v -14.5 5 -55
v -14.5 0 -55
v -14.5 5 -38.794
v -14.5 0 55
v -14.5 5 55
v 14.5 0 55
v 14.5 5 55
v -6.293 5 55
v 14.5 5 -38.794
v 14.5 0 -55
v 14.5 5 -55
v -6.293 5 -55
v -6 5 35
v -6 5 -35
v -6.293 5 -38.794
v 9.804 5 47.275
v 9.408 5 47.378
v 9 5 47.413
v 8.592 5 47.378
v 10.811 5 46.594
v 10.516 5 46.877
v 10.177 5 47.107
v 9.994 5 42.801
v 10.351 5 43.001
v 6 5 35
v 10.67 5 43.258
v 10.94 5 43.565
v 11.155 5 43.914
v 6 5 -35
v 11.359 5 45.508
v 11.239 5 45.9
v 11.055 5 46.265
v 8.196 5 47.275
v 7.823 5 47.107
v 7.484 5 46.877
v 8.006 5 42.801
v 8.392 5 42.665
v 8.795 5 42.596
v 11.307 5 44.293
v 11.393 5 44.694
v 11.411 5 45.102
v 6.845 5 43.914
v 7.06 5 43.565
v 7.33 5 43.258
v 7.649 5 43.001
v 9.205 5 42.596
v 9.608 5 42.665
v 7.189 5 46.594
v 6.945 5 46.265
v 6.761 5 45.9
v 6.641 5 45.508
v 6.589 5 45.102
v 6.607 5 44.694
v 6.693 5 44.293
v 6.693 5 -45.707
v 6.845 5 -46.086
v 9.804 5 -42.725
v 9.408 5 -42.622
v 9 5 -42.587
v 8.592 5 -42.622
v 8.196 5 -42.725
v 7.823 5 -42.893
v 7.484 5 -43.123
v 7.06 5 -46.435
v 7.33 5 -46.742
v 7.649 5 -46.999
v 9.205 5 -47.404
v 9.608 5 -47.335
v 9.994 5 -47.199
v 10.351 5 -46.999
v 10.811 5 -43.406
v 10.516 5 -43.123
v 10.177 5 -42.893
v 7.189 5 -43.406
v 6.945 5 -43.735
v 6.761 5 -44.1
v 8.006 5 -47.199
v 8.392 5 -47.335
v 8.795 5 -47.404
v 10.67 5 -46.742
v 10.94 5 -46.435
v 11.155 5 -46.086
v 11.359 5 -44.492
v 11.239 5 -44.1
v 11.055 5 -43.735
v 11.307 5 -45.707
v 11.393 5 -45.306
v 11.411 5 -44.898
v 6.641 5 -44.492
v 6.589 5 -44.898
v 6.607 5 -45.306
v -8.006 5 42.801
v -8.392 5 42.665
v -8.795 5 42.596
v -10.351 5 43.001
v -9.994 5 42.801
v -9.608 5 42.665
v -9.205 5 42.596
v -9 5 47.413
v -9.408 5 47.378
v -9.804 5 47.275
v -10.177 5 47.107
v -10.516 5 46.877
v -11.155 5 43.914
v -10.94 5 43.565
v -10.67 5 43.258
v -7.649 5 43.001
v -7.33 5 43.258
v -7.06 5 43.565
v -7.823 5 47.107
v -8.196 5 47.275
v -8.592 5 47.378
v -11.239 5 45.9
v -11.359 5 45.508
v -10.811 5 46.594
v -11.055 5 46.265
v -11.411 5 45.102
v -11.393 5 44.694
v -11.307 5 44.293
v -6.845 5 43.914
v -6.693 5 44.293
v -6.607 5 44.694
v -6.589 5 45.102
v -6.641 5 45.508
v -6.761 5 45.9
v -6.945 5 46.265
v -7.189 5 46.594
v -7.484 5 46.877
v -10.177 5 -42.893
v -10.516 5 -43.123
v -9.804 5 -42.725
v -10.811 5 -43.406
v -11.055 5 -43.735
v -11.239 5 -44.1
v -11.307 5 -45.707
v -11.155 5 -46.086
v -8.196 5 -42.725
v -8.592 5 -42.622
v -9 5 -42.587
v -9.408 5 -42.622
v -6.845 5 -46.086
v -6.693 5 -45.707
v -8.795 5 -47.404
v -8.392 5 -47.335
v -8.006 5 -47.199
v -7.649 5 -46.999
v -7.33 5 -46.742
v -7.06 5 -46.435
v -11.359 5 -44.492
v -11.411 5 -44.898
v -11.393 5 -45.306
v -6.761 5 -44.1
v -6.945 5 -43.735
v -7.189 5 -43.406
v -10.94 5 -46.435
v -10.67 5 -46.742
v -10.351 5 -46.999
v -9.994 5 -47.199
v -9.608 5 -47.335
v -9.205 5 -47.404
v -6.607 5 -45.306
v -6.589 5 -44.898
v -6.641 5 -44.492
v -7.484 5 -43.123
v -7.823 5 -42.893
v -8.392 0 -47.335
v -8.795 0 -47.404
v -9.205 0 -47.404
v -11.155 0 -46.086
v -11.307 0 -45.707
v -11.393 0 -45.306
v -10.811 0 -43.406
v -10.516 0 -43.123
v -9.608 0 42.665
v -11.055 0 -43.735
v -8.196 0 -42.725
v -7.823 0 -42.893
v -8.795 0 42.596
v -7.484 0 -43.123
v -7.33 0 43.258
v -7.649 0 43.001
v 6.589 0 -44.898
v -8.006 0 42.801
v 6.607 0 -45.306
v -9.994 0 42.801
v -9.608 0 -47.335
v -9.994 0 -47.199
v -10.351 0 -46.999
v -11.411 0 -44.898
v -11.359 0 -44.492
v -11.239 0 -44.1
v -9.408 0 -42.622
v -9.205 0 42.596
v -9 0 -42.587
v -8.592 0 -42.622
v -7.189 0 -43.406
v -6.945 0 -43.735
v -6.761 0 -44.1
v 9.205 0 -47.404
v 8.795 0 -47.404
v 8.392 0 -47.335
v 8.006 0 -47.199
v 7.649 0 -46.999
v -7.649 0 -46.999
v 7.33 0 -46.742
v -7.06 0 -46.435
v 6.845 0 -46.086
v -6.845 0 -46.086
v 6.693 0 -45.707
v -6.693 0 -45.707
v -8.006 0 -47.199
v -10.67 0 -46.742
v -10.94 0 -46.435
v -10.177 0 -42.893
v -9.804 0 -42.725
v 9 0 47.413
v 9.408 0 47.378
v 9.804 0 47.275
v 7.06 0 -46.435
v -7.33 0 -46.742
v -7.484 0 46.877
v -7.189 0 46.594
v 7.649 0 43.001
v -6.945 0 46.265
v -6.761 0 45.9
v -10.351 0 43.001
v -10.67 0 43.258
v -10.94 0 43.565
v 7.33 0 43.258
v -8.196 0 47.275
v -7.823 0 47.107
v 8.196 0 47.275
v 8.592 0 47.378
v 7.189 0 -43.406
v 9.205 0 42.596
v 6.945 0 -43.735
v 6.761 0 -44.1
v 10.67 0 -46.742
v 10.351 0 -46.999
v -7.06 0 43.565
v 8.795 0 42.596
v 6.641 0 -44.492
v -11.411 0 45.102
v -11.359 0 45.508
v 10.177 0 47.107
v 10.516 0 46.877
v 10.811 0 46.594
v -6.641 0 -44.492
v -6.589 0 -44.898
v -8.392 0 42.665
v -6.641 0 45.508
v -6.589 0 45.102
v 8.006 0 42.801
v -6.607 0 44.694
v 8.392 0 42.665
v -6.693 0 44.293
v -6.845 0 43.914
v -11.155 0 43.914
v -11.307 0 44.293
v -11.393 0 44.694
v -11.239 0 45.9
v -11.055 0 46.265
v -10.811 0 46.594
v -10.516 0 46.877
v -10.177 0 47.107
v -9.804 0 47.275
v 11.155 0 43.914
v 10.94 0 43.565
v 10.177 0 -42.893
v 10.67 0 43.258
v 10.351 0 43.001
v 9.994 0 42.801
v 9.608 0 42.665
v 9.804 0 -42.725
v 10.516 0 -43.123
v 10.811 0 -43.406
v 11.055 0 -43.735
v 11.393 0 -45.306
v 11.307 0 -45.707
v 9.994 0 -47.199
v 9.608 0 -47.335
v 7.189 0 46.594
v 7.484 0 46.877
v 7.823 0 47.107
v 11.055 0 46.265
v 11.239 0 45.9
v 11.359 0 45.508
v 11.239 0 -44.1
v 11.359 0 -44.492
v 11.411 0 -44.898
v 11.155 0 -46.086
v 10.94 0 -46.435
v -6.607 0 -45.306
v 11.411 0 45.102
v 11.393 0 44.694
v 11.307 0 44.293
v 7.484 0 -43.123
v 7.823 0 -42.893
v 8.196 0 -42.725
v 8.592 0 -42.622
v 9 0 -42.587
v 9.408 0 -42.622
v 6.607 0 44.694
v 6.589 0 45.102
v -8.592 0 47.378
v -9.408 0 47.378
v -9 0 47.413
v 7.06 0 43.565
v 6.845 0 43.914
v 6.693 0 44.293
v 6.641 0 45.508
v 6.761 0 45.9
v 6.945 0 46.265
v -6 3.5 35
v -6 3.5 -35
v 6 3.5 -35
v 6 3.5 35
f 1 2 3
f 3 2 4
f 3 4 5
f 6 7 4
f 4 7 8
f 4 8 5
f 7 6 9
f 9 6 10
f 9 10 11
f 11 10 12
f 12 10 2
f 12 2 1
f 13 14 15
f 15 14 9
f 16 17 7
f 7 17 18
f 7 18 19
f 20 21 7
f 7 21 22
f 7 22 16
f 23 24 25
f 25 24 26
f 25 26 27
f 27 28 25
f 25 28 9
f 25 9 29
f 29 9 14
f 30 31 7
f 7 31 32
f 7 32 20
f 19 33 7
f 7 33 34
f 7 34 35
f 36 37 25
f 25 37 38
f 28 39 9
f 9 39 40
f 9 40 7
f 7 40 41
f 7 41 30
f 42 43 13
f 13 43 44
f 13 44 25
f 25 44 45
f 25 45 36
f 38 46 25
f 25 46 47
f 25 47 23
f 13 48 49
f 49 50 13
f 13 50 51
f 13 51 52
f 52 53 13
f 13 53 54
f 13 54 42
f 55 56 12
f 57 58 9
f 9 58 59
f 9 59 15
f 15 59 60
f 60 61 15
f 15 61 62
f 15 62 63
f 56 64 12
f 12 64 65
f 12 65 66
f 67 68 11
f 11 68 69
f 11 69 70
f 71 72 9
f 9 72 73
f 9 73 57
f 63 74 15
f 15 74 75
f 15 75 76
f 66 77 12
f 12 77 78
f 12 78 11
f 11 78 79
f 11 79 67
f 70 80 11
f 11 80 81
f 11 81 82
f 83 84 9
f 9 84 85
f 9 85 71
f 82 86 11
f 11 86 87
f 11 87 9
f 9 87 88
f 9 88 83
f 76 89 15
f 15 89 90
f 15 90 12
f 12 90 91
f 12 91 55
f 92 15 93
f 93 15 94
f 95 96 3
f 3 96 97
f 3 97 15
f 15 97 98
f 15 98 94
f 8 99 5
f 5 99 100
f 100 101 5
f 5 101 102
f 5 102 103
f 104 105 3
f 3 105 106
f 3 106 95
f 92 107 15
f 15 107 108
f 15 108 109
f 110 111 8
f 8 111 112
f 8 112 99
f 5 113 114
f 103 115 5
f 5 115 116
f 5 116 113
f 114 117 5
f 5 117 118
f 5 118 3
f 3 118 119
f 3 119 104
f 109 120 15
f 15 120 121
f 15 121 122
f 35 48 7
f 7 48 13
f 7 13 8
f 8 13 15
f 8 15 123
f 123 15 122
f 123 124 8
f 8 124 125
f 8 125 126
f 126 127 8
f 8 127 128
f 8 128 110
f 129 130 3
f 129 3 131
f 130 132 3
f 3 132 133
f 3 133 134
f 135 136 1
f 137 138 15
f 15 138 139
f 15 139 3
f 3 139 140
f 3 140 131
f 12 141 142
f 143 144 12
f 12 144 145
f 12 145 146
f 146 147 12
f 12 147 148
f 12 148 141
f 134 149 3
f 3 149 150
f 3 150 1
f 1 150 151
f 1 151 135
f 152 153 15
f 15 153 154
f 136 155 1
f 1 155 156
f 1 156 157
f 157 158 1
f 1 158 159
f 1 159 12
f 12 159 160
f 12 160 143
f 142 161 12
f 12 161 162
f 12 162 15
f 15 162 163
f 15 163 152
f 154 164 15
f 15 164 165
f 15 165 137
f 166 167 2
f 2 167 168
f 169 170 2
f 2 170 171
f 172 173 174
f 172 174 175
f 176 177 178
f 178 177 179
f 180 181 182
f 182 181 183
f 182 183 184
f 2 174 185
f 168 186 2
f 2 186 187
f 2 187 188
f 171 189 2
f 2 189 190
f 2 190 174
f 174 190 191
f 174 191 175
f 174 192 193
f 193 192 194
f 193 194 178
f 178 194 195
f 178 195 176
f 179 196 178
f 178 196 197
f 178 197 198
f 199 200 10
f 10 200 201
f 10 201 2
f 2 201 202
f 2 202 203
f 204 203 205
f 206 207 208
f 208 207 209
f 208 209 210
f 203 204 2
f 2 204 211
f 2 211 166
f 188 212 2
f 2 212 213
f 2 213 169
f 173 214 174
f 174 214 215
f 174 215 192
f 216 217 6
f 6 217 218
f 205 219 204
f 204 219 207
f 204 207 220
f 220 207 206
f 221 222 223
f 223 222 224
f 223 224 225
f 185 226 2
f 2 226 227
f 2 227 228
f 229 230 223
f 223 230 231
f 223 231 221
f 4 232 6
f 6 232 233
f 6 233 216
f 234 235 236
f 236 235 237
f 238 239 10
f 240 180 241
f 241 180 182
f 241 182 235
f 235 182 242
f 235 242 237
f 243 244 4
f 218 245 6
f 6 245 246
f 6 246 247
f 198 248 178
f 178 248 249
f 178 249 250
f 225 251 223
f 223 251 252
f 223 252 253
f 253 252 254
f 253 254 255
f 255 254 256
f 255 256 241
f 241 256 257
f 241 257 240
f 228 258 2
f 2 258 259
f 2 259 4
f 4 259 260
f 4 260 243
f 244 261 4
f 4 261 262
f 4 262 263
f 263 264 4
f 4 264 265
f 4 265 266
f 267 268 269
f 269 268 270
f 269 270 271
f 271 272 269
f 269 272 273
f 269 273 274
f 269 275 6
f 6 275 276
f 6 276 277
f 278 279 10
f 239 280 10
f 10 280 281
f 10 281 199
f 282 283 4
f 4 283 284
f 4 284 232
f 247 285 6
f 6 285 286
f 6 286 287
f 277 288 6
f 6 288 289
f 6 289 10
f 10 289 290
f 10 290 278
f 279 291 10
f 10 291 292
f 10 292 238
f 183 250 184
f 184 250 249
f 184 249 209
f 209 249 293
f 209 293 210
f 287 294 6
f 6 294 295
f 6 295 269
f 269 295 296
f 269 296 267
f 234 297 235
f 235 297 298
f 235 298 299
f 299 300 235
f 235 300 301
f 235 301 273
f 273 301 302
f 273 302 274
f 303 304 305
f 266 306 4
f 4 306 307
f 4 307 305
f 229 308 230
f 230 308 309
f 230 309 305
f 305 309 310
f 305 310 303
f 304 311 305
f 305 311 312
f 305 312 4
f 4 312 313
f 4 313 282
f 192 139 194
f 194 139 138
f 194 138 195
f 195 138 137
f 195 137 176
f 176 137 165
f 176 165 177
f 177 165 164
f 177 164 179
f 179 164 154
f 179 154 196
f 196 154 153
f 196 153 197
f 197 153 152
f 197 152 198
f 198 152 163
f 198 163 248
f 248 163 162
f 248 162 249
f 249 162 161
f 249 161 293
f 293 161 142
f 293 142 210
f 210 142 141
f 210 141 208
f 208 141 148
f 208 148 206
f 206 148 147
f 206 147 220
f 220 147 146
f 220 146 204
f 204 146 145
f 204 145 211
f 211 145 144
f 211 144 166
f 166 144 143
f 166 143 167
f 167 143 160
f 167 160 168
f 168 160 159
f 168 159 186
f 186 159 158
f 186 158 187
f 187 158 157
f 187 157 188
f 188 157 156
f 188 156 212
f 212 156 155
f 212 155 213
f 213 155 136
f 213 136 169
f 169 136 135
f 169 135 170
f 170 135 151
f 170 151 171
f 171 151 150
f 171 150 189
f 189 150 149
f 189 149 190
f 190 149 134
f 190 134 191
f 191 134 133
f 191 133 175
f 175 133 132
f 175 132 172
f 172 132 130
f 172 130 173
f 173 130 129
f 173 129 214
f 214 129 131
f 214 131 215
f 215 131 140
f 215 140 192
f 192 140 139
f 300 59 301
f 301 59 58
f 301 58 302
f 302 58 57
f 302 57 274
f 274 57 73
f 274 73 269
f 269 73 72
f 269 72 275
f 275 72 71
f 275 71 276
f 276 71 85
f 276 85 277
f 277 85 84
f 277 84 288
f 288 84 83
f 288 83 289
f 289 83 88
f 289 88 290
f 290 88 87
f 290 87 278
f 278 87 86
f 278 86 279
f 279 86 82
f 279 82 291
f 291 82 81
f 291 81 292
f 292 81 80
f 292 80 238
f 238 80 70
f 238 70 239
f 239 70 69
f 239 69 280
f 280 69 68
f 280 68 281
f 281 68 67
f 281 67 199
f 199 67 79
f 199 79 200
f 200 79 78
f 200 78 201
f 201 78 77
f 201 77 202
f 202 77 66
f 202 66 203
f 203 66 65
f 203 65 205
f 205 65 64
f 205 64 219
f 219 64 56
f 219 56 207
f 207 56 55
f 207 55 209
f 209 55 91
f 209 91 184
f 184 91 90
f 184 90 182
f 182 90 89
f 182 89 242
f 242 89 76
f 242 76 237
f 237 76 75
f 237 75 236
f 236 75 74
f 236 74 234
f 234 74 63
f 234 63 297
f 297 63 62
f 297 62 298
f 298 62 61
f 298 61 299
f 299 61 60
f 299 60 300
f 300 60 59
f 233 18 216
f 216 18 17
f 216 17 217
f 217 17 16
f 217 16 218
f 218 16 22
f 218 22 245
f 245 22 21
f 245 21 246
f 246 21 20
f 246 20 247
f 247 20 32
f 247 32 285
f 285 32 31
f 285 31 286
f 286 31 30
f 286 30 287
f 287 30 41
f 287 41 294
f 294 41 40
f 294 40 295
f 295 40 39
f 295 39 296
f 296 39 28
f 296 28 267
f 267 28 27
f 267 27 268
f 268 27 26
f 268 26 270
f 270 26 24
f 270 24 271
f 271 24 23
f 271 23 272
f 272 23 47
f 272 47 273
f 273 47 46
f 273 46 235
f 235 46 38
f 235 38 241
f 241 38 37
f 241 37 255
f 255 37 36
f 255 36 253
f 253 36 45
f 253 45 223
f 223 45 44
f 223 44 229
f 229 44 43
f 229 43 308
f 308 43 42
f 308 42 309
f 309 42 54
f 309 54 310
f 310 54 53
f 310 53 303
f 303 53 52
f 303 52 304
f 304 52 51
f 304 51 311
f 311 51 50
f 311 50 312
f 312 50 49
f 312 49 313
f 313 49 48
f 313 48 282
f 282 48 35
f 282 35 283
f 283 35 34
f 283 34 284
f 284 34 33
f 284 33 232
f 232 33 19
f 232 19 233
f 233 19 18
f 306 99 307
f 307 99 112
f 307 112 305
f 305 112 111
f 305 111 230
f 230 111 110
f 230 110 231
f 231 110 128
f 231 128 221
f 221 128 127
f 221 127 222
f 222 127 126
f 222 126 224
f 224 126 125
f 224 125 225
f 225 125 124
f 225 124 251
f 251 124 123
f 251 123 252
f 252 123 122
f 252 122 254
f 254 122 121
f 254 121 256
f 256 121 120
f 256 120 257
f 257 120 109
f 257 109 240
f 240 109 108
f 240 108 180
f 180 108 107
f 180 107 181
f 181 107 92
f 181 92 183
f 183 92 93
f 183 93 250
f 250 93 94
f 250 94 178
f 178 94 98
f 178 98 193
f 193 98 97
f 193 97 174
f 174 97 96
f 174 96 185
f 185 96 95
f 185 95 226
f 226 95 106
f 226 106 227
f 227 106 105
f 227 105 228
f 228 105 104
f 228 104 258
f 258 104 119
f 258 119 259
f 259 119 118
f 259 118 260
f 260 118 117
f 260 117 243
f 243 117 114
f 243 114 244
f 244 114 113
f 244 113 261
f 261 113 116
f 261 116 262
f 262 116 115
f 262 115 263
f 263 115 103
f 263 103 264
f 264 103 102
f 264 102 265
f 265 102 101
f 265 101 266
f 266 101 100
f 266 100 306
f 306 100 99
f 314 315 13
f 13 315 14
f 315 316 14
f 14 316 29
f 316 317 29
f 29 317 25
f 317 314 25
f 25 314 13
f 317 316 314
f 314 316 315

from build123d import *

# Parameters (mm, degrees)
SKETCH1_W           = 29
SKETCH1_H           = 110
BOSS_EXTRUDE1_DEPTH = 5
SKETCH2_R           = 2.413
CUT_EXTRUDE5_DEPTH  = 58.098598932
SKETCH3_W           = 12
SKETCH3_H           = 70
CUT_EXTRUDE6_DEPTH  = 1.5


with BuildPart() as part:
    # Sketch1 → Boss-Extrude1 (new body)
    with BuildSketch(Plane(origin=(0, 0, 0), x_dir=(1, 0, 0), z_dir=(0, 1, 0))):
        Rectangle(SKETCH1_W, SKETCH1_H)
    extrude(amount=BOSS_EXTRUDE1_DEPTH)

    # Sketch2 → Cut-Extrude5 (cut, through all)
    with BuildSketch(Plane(origin=(0, 5, 0), x_dir=(1, 0, 0), z_dir=(0, 1, 0))):
        with Locations(Location((-9, 45, 0), (0, 0, 270))):
            Circle(SKETCH2_R)
        with Locations(Location((9, 45, 0), (0, 0, 270))):
            Circle(SKETCH2_R)
        with Locations(Location((9, -45, 0), (0, 0, 270))):
            Circle(SKETCH2_R)
        with Locations(Location((-9, -45, 0), (0, 0, 270))):
            Circle(SKETCH2_R)
    extrude(amount=-CUT_EXTRUDE5_DEPTH, mode=Mode.SUBTRACT)

    # Sketch3 → Cut-Extrude6 (cut)
    with BuildSketch(Plane(origin=(0, 5, 0), x_dir=(1, 0, 0), z_dir=(0, 1, 0))):
        Rectangle(SKETCH3_W, SKETCH3_H)
    extrude(amount=-CUT_EXTRUDE6_DEPTH, mode=Mode.SUBTRACT)


solid = part.part
